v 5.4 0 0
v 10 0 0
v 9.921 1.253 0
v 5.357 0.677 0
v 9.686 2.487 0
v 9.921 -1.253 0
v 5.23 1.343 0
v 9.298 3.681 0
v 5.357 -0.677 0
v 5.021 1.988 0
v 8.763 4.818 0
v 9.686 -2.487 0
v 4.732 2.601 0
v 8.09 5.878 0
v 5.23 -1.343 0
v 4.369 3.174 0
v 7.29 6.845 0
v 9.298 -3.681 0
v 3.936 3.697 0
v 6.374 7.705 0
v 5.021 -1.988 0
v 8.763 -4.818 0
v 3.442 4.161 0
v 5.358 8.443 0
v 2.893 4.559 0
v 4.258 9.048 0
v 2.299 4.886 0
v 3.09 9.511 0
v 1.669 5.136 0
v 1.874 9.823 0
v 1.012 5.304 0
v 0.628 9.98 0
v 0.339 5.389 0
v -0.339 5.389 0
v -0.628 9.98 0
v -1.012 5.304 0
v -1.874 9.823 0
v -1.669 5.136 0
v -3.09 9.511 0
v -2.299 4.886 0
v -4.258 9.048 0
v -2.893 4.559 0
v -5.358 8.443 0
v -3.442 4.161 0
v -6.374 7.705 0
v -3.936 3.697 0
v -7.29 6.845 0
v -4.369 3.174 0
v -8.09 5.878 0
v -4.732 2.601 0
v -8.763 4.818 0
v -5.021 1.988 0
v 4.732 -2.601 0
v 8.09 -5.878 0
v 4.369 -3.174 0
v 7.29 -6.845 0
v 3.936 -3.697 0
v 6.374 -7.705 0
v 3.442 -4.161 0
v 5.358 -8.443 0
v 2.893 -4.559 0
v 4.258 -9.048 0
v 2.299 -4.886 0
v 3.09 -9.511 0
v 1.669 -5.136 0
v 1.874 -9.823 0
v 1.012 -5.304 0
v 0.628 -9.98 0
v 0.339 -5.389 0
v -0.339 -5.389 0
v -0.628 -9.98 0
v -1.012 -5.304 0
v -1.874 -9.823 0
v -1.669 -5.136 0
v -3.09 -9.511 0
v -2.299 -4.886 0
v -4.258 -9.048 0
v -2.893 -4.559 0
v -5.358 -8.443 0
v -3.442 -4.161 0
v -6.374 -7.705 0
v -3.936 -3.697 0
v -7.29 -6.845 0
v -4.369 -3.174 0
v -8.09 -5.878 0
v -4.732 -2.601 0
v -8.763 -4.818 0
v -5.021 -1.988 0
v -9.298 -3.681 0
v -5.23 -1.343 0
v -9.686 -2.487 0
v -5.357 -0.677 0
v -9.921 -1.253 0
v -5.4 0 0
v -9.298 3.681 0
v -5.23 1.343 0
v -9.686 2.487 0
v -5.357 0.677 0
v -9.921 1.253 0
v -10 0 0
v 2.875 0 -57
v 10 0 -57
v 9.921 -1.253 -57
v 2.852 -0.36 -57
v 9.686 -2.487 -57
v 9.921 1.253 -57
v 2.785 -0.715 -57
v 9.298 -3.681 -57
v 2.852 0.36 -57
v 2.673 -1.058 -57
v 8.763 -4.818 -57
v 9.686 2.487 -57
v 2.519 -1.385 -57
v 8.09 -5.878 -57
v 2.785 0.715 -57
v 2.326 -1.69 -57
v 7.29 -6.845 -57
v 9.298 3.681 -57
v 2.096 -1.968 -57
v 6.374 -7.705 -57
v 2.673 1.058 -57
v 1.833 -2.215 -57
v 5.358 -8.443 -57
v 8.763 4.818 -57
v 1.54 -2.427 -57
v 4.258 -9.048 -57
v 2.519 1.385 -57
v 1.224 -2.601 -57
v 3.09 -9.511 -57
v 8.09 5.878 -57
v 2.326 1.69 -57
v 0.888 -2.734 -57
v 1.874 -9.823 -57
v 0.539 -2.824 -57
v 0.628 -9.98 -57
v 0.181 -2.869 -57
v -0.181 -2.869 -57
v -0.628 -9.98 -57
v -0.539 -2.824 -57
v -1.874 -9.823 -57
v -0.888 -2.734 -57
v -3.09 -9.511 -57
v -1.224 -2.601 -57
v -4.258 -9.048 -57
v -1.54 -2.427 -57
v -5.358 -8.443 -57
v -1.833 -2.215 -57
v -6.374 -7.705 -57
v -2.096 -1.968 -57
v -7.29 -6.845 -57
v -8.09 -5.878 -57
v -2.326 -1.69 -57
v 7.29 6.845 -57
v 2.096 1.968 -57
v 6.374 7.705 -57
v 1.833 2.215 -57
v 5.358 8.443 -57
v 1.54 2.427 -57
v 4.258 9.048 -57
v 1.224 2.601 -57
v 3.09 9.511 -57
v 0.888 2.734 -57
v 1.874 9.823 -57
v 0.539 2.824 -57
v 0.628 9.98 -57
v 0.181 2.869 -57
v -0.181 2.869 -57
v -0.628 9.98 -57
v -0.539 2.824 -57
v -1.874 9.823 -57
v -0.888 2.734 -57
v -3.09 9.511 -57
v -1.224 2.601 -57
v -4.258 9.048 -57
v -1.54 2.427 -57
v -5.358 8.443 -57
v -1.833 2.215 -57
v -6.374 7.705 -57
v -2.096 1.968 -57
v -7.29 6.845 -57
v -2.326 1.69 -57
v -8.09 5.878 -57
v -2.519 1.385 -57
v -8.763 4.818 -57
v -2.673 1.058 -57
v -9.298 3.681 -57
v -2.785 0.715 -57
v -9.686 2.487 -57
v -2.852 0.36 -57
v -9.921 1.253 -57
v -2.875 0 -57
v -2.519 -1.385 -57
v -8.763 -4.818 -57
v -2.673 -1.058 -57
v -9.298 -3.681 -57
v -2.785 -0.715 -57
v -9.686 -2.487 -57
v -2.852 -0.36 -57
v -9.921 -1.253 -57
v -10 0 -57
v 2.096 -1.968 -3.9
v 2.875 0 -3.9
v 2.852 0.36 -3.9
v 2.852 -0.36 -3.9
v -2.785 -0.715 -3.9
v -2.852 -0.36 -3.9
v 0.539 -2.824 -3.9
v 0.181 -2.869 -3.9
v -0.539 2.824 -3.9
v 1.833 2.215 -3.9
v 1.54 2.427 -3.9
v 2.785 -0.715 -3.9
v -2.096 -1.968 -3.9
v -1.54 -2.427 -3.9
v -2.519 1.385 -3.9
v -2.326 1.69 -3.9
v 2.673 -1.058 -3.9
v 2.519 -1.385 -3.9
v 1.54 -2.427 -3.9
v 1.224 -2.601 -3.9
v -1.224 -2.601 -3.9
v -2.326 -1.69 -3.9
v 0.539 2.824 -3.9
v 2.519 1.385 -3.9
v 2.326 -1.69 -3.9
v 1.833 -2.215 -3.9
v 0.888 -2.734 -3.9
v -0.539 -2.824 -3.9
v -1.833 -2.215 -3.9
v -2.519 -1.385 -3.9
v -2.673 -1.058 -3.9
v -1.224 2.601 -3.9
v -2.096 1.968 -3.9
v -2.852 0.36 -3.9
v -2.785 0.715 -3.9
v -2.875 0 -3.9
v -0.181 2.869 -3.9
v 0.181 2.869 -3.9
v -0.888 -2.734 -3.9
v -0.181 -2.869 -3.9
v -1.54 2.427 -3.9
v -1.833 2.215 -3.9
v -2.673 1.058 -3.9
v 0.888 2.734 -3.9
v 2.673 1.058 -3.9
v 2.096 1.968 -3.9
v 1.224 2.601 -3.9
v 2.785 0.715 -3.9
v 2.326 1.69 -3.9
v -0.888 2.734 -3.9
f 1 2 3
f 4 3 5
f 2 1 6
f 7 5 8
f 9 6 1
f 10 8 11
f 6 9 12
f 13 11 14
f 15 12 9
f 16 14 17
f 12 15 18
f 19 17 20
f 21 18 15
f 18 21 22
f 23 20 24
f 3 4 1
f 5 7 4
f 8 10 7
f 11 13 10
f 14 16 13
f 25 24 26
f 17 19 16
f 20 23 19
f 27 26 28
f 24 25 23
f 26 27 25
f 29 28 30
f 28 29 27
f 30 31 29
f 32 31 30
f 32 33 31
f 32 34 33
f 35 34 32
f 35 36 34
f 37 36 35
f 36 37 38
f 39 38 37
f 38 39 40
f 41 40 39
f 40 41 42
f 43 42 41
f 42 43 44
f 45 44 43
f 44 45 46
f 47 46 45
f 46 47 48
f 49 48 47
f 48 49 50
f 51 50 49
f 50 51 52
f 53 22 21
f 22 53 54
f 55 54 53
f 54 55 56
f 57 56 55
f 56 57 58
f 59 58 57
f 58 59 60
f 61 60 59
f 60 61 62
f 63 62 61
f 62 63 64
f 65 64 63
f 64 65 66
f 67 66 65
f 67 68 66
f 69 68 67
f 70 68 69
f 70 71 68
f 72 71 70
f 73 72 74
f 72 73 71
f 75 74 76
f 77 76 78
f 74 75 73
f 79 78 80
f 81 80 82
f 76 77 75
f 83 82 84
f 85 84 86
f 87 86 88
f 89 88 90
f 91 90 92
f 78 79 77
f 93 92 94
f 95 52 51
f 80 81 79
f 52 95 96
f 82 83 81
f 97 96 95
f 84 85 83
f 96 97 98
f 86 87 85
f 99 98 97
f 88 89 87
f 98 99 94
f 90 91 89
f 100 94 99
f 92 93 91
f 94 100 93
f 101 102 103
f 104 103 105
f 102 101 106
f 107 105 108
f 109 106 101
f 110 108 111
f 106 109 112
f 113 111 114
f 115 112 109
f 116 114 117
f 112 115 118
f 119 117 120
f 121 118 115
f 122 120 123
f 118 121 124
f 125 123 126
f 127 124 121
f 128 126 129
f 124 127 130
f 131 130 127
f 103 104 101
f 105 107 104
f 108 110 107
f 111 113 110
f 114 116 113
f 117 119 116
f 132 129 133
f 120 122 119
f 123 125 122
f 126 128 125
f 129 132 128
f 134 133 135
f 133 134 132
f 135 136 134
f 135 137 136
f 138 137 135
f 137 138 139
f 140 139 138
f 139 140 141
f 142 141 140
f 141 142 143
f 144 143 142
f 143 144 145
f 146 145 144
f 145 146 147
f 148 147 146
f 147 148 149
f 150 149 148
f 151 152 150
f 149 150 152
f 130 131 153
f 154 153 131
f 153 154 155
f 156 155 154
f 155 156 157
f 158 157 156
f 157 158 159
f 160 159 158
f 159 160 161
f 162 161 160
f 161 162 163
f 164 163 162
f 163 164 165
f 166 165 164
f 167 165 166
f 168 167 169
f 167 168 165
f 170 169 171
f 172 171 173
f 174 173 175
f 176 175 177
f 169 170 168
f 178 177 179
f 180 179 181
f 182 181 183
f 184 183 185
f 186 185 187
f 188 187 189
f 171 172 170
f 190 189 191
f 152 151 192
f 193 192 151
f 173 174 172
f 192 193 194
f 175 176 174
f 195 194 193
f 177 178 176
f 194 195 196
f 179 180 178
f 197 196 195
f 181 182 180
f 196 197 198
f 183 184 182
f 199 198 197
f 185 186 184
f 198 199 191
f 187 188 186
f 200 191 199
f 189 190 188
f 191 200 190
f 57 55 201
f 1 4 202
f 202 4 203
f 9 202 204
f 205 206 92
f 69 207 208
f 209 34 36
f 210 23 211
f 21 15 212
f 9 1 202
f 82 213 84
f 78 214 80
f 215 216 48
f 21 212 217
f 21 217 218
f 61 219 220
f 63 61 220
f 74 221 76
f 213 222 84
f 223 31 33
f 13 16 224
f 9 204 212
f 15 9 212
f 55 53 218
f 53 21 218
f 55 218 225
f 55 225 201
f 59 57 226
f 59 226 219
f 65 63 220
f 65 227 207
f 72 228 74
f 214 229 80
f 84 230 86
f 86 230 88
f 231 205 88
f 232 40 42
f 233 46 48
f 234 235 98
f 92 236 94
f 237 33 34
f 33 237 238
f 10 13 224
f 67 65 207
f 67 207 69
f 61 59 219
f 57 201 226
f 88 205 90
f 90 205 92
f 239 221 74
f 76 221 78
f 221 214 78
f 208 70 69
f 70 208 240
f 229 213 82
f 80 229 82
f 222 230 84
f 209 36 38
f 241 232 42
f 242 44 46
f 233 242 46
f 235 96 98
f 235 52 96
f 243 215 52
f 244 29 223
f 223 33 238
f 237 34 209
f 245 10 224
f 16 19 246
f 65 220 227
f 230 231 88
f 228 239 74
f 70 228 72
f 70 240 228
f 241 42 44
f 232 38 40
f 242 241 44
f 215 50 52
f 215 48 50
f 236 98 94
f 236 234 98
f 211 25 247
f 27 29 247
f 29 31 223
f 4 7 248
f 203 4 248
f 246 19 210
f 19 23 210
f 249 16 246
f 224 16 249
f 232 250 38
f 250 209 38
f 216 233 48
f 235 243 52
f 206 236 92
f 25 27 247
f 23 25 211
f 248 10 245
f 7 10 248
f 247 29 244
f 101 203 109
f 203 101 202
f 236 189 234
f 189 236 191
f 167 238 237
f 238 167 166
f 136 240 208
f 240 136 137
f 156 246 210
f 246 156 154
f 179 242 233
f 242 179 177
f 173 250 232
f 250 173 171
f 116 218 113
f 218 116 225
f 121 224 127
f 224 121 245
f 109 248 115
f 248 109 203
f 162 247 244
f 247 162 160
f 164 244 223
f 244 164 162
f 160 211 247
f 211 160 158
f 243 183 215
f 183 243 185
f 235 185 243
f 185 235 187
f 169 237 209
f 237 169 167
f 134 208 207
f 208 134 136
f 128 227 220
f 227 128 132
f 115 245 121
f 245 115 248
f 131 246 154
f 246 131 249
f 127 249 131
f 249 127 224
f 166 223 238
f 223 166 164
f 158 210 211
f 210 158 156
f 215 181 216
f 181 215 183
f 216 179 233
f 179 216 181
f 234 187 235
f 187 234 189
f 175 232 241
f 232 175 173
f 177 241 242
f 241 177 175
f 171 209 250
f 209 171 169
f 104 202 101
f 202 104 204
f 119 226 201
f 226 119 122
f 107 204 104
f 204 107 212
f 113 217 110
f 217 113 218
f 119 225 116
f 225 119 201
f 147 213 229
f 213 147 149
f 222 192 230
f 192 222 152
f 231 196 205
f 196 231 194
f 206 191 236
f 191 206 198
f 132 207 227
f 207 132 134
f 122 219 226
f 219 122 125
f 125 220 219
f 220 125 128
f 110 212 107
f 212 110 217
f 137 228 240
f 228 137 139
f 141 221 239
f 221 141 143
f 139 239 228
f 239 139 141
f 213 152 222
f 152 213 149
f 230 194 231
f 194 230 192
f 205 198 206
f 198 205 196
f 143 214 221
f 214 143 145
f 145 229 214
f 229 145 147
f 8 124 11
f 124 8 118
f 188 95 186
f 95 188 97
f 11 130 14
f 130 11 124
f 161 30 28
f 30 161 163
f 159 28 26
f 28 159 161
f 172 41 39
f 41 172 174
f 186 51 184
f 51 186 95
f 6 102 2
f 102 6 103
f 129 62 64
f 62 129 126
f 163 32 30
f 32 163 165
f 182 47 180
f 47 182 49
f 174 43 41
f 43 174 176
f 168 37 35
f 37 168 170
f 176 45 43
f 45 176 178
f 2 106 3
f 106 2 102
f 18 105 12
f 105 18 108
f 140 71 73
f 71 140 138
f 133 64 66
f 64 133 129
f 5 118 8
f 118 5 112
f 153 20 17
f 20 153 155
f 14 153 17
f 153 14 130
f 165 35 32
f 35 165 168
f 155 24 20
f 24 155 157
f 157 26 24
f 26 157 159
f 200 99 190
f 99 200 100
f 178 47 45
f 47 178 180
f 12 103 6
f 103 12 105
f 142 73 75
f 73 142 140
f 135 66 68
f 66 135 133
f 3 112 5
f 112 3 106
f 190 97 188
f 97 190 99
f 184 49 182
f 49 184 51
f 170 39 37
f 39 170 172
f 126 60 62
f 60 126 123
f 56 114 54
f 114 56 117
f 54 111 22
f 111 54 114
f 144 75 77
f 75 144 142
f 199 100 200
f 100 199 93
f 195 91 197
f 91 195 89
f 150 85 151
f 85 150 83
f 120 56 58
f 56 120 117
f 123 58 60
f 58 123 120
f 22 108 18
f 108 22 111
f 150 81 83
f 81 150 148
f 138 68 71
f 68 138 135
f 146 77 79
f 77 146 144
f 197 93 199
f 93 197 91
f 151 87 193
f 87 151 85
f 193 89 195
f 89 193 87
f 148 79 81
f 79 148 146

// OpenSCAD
$fn = 50;


difference() {
	union() {
		translate(v = [0, 0, -57.0000000000]) {
			cylinder(h = 57, r = 10.0000000000);
		}
		cylinder(h = 0, r = 19.0000000000);
	}
	union() {
		translate(v = [0, 0, 0]) {
			rotate(a = [0, 0, 0]) {
				difference() {
					union() {
						#translate(v = [0, 0, -57.0000000000]) {
							cylinder(h = 57, r = 2.6000000000);
						}
						#translate(v = [0, 0, -3.9000000000]) {
							cylinder(h = 3.9000000000, r = 10.0000000000, r1 = 2.8750000000, r2 = 5.4000000000);
						}
						#translate(v = [0, 0, -57.0000000000]) {
							cylinder(h = 57, r = 2.8750000000);
						}
						#translate(v = [0, 0, -57.0000000000]) {
							cylinder(h = 57, r = 2.6000000000);
						}
					}
					union();
				}
			}
		}
	}
}
